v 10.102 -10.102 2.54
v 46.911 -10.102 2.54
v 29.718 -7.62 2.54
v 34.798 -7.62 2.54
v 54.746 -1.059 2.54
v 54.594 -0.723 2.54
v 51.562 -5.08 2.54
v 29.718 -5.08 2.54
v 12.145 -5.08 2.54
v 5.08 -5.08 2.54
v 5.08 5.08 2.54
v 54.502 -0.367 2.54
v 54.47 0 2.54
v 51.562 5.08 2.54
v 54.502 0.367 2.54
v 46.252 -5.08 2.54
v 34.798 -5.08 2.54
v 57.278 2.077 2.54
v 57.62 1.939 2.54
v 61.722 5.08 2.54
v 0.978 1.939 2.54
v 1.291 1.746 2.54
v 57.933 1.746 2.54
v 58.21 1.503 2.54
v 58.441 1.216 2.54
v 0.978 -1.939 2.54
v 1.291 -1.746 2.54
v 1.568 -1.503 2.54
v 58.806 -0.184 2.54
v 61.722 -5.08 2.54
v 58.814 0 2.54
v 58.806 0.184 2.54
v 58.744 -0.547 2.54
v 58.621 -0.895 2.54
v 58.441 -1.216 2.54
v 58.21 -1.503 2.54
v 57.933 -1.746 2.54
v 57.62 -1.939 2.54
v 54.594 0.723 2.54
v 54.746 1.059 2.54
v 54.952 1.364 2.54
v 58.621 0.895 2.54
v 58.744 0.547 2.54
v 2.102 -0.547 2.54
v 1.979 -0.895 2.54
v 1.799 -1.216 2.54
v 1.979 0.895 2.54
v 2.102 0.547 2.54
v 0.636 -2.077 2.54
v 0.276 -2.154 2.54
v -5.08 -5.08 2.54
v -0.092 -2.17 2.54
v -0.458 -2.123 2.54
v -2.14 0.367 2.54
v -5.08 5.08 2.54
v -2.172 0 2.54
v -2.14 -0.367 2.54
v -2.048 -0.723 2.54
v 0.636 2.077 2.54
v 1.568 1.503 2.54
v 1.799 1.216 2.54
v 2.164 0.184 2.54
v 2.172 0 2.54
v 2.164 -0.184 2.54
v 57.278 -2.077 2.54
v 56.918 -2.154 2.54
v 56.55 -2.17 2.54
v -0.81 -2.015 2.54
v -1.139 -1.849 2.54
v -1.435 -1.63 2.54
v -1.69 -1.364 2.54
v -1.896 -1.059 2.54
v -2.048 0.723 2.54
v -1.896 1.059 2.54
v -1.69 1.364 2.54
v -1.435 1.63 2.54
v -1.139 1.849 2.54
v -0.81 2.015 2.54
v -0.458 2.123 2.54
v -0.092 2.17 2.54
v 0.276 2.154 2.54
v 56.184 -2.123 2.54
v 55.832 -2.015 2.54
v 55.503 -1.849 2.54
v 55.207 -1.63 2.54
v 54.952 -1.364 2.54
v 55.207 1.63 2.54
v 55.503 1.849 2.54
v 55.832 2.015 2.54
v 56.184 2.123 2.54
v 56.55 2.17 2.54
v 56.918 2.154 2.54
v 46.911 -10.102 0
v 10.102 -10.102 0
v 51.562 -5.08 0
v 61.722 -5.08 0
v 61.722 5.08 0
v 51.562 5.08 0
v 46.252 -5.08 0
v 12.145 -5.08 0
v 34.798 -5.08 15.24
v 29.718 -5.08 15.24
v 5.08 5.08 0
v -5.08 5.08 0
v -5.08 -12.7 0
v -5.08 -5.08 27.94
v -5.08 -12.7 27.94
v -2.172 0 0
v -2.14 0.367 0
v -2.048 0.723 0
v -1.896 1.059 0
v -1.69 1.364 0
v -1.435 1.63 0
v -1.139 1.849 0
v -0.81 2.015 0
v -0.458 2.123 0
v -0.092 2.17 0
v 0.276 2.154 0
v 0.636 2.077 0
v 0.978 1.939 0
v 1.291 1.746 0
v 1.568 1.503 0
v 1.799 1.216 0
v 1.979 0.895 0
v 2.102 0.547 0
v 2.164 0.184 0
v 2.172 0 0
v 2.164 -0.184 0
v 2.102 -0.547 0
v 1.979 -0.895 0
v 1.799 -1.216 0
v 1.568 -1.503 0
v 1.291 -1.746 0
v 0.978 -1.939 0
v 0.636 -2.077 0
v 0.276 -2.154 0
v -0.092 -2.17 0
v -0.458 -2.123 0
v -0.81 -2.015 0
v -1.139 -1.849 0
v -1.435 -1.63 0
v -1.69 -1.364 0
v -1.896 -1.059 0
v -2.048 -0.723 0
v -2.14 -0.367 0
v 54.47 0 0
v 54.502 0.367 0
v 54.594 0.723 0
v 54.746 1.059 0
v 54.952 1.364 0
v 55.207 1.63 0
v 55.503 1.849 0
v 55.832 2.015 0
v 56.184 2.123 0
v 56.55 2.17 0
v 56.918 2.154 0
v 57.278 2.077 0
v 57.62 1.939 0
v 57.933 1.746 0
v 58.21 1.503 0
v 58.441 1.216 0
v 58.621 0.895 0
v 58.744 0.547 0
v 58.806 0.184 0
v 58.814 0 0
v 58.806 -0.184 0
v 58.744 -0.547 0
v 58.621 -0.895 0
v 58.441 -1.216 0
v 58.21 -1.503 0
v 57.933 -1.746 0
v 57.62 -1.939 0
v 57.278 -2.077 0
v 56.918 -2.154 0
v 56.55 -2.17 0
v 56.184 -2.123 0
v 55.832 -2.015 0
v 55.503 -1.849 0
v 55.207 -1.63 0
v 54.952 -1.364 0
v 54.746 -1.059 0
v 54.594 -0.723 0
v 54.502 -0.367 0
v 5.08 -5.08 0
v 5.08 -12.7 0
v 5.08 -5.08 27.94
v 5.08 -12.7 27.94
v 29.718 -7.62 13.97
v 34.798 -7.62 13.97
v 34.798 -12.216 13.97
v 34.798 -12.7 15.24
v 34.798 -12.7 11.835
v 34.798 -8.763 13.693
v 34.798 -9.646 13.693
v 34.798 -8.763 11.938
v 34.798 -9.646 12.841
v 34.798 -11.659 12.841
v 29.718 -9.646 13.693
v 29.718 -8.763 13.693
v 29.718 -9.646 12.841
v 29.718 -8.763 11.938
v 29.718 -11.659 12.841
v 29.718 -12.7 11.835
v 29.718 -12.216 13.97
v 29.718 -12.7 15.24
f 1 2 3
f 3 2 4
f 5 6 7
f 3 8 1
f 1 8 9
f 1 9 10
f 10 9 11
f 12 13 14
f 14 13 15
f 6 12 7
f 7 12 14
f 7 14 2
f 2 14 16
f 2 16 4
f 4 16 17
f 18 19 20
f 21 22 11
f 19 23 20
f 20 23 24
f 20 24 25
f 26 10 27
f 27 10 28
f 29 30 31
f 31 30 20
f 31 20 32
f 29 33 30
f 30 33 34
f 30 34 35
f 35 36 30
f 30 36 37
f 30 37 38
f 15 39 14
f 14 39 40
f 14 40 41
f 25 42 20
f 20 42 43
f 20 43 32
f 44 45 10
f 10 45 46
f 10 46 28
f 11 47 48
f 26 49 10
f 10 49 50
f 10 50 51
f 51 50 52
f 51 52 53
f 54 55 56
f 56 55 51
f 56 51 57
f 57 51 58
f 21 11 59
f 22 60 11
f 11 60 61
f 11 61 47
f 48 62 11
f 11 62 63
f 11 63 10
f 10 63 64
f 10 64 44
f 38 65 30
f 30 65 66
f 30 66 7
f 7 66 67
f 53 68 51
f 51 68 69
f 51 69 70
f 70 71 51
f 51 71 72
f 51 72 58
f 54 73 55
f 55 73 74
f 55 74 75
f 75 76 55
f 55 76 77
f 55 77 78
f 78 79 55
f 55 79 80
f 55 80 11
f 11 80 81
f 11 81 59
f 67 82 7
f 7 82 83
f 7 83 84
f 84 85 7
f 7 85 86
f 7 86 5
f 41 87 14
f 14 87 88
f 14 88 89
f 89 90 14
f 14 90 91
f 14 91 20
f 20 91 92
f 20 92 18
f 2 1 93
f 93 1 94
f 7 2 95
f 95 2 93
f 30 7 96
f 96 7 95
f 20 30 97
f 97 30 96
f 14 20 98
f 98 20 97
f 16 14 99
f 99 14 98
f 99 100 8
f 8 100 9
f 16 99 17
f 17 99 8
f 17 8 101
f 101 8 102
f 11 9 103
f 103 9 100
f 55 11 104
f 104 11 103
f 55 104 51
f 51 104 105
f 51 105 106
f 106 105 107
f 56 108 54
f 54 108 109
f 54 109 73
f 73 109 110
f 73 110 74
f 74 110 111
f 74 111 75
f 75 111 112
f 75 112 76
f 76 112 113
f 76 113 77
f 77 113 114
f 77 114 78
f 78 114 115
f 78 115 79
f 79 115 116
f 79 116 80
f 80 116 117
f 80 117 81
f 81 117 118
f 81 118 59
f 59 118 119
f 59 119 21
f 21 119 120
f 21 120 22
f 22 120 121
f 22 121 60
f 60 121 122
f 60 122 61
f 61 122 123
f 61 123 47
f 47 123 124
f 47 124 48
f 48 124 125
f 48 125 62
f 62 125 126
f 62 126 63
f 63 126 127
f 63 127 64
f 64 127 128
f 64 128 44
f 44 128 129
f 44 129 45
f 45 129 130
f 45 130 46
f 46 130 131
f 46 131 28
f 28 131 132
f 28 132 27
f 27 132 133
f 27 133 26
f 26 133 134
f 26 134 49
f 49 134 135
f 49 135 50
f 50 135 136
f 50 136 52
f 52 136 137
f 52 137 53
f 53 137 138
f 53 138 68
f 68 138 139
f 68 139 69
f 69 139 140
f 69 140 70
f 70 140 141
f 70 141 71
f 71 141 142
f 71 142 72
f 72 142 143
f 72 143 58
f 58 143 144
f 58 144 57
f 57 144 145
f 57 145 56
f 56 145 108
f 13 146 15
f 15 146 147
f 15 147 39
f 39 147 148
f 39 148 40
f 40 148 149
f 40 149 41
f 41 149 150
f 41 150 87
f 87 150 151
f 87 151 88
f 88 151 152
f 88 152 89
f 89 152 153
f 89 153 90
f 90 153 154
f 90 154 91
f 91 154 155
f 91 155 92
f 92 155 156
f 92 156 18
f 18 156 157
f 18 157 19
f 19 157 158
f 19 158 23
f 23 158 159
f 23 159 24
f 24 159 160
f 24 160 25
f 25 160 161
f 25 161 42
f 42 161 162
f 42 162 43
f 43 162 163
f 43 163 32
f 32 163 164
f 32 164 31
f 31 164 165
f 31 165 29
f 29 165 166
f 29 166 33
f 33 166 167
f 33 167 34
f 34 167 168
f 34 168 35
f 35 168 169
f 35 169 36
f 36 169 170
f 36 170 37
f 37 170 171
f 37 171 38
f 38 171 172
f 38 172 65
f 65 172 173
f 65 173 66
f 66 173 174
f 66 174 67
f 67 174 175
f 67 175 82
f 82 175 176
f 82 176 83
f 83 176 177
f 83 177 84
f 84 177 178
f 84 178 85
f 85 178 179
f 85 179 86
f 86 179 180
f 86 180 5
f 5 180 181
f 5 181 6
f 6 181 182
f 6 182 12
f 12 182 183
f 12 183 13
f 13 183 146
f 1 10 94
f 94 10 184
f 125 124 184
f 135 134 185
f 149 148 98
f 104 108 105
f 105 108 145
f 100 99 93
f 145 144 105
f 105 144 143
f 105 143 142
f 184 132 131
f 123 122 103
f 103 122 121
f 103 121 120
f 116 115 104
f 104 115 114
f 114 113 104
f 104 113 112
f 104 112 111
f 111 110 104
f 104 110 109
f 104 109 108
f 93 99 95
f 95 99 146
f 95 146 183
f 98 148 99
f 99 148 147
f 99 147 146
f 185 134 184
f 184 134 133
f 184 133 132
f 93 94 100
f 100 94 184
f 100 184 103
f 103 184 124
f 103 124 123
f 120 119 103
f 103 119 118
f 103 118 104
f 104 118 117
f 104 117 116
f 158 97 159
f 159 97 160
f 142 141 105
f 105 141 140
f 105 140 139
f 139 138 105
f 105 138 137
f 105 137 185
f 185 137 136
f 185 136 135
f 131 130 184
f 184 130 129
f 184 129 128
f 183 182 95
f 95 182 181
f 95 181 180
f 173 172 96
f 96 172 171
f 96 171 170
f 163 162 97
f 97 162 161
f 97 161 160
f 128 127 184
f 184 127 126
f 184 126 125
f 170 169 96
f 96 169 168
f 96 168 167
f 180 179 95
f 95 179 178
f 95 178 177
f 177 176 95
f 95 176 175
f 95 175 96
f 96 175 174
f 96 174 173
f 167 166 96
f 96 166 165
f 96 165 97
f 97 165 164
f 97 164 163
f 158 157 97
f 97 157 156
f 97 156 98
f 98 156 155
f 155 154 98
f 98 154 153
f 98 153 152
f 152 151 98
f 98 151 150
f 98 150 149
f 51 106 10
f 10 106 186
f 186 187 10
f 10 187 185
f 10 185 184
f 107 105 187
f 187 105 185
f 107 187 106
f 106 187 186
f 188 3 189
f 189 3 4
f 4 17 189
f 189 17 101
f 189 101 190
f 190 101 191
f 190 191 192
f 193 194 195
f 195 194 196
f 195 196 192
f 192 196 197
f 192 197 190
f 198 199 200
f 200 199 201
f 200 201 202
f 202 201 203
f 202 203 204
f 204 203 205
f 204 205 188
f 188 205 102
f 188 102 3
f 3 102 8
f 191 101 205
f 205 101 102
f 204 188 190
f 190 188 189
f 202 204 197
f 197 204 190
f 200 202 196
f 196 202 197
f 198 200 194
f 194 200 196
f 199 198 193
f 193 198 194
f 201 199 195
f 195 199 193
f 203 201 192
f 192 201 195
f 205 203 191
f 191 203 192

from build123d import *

# Parameters (mm, degrees)
SKETCH1_R                = 2.1717
BOSS_EXTRUDE2_DEPTH      = 2.54
BOSS_EXTRUDE3_DEPTH      = 25.4
BOSS_EXTRUDE3_DEPTH_BACK = 2.54
SKETCH2_W                = 10.16
SKETCH2_H                = 7.62
SKETCH3_W                = 5.08
SKETCH3_H                = 2.54
BOSS_EXTRUDE7_DEPTH      = 12.7
BOSS_EXTRUDE8_DEPTH      = 5.08


with BuildPart() as part:
    # Sketch1 → Boss-Extrude2 (new body)
    with BuildSketch(Plane.XY):
        Polygon((10.102114399, -10.102114399), (46.910827705, -10.102114399), (51.562, -5.08), (61.722, -5.08), (61.722, 5.08), (56.642, 5.08), (51.562, 5.08), (46.252389936, -5.08), (12.145313508, -5.08), (5.08, 5.08), (0, 5.08), (-5.08, 5.08), (-5.08, -5.08), (5.08, -5.08), align=None)
        with Locations((56.642, 0)):
            Circle(SKETCH1_R, mode=Mode.SUBTRACT)
        Circle(SKETCH1_R, mode=Mode.SUBTRACT)
    extrude(amount=BOSS_EXTRUDE2_DEPTH)

    # Sketch2 → Boss-Extrude3 (add, two sides: drawn at the far end of the back side and taken through both)
    with BuildSketch(Plane.XY.offset(2.54).offset(-BOSS_EXTRUDE3_DEPTH_BACK)):
        with Locations((0, -8.89)):
            Rectangle(SKETCH2_W, SKETCH2_H)
    extrude(amount=BOSS_EXTRUDE3_DEPTH + BOSS_EXTRUDE3_DEPTH_BACK)

    # Sketch3 → Boss-Extrude7 (add)
    with BuildSketch(Plane.XY.offset(2.54)):
        with Locations((32.258, -6.35)):
            Rectangle(SKETCH3_W, SKETCH3_H)
    extrude(amount=BOSS_EXTRUDE7_DEPTH)

    # Sketch5 → Boss-Extrude8 (add)
    with BuildSketch(Plane(origin=(34.798, 0, 0), x_dir=(0, 0, -1), z_dir=(1, 0, 0))):
        Polygon((-15.24, -7.62), (-15.24, -12.7), (-13.97, -12.7), (-11.834830977, -12.7), (-11.938, -8.763360945), (-13.693199114, -8.763360945), (-13.693199114, -9.646415213), (-12.841122396, -9.646415213), (-12.841122396, -11.658511366), (-13.97, -12.215842923), (-13.97, -9.646415213), (-13.97, -7.62), align=None)
    extrude(amount=-BOSS_EXTRUDE8_DEPTH)


solid = part.part
